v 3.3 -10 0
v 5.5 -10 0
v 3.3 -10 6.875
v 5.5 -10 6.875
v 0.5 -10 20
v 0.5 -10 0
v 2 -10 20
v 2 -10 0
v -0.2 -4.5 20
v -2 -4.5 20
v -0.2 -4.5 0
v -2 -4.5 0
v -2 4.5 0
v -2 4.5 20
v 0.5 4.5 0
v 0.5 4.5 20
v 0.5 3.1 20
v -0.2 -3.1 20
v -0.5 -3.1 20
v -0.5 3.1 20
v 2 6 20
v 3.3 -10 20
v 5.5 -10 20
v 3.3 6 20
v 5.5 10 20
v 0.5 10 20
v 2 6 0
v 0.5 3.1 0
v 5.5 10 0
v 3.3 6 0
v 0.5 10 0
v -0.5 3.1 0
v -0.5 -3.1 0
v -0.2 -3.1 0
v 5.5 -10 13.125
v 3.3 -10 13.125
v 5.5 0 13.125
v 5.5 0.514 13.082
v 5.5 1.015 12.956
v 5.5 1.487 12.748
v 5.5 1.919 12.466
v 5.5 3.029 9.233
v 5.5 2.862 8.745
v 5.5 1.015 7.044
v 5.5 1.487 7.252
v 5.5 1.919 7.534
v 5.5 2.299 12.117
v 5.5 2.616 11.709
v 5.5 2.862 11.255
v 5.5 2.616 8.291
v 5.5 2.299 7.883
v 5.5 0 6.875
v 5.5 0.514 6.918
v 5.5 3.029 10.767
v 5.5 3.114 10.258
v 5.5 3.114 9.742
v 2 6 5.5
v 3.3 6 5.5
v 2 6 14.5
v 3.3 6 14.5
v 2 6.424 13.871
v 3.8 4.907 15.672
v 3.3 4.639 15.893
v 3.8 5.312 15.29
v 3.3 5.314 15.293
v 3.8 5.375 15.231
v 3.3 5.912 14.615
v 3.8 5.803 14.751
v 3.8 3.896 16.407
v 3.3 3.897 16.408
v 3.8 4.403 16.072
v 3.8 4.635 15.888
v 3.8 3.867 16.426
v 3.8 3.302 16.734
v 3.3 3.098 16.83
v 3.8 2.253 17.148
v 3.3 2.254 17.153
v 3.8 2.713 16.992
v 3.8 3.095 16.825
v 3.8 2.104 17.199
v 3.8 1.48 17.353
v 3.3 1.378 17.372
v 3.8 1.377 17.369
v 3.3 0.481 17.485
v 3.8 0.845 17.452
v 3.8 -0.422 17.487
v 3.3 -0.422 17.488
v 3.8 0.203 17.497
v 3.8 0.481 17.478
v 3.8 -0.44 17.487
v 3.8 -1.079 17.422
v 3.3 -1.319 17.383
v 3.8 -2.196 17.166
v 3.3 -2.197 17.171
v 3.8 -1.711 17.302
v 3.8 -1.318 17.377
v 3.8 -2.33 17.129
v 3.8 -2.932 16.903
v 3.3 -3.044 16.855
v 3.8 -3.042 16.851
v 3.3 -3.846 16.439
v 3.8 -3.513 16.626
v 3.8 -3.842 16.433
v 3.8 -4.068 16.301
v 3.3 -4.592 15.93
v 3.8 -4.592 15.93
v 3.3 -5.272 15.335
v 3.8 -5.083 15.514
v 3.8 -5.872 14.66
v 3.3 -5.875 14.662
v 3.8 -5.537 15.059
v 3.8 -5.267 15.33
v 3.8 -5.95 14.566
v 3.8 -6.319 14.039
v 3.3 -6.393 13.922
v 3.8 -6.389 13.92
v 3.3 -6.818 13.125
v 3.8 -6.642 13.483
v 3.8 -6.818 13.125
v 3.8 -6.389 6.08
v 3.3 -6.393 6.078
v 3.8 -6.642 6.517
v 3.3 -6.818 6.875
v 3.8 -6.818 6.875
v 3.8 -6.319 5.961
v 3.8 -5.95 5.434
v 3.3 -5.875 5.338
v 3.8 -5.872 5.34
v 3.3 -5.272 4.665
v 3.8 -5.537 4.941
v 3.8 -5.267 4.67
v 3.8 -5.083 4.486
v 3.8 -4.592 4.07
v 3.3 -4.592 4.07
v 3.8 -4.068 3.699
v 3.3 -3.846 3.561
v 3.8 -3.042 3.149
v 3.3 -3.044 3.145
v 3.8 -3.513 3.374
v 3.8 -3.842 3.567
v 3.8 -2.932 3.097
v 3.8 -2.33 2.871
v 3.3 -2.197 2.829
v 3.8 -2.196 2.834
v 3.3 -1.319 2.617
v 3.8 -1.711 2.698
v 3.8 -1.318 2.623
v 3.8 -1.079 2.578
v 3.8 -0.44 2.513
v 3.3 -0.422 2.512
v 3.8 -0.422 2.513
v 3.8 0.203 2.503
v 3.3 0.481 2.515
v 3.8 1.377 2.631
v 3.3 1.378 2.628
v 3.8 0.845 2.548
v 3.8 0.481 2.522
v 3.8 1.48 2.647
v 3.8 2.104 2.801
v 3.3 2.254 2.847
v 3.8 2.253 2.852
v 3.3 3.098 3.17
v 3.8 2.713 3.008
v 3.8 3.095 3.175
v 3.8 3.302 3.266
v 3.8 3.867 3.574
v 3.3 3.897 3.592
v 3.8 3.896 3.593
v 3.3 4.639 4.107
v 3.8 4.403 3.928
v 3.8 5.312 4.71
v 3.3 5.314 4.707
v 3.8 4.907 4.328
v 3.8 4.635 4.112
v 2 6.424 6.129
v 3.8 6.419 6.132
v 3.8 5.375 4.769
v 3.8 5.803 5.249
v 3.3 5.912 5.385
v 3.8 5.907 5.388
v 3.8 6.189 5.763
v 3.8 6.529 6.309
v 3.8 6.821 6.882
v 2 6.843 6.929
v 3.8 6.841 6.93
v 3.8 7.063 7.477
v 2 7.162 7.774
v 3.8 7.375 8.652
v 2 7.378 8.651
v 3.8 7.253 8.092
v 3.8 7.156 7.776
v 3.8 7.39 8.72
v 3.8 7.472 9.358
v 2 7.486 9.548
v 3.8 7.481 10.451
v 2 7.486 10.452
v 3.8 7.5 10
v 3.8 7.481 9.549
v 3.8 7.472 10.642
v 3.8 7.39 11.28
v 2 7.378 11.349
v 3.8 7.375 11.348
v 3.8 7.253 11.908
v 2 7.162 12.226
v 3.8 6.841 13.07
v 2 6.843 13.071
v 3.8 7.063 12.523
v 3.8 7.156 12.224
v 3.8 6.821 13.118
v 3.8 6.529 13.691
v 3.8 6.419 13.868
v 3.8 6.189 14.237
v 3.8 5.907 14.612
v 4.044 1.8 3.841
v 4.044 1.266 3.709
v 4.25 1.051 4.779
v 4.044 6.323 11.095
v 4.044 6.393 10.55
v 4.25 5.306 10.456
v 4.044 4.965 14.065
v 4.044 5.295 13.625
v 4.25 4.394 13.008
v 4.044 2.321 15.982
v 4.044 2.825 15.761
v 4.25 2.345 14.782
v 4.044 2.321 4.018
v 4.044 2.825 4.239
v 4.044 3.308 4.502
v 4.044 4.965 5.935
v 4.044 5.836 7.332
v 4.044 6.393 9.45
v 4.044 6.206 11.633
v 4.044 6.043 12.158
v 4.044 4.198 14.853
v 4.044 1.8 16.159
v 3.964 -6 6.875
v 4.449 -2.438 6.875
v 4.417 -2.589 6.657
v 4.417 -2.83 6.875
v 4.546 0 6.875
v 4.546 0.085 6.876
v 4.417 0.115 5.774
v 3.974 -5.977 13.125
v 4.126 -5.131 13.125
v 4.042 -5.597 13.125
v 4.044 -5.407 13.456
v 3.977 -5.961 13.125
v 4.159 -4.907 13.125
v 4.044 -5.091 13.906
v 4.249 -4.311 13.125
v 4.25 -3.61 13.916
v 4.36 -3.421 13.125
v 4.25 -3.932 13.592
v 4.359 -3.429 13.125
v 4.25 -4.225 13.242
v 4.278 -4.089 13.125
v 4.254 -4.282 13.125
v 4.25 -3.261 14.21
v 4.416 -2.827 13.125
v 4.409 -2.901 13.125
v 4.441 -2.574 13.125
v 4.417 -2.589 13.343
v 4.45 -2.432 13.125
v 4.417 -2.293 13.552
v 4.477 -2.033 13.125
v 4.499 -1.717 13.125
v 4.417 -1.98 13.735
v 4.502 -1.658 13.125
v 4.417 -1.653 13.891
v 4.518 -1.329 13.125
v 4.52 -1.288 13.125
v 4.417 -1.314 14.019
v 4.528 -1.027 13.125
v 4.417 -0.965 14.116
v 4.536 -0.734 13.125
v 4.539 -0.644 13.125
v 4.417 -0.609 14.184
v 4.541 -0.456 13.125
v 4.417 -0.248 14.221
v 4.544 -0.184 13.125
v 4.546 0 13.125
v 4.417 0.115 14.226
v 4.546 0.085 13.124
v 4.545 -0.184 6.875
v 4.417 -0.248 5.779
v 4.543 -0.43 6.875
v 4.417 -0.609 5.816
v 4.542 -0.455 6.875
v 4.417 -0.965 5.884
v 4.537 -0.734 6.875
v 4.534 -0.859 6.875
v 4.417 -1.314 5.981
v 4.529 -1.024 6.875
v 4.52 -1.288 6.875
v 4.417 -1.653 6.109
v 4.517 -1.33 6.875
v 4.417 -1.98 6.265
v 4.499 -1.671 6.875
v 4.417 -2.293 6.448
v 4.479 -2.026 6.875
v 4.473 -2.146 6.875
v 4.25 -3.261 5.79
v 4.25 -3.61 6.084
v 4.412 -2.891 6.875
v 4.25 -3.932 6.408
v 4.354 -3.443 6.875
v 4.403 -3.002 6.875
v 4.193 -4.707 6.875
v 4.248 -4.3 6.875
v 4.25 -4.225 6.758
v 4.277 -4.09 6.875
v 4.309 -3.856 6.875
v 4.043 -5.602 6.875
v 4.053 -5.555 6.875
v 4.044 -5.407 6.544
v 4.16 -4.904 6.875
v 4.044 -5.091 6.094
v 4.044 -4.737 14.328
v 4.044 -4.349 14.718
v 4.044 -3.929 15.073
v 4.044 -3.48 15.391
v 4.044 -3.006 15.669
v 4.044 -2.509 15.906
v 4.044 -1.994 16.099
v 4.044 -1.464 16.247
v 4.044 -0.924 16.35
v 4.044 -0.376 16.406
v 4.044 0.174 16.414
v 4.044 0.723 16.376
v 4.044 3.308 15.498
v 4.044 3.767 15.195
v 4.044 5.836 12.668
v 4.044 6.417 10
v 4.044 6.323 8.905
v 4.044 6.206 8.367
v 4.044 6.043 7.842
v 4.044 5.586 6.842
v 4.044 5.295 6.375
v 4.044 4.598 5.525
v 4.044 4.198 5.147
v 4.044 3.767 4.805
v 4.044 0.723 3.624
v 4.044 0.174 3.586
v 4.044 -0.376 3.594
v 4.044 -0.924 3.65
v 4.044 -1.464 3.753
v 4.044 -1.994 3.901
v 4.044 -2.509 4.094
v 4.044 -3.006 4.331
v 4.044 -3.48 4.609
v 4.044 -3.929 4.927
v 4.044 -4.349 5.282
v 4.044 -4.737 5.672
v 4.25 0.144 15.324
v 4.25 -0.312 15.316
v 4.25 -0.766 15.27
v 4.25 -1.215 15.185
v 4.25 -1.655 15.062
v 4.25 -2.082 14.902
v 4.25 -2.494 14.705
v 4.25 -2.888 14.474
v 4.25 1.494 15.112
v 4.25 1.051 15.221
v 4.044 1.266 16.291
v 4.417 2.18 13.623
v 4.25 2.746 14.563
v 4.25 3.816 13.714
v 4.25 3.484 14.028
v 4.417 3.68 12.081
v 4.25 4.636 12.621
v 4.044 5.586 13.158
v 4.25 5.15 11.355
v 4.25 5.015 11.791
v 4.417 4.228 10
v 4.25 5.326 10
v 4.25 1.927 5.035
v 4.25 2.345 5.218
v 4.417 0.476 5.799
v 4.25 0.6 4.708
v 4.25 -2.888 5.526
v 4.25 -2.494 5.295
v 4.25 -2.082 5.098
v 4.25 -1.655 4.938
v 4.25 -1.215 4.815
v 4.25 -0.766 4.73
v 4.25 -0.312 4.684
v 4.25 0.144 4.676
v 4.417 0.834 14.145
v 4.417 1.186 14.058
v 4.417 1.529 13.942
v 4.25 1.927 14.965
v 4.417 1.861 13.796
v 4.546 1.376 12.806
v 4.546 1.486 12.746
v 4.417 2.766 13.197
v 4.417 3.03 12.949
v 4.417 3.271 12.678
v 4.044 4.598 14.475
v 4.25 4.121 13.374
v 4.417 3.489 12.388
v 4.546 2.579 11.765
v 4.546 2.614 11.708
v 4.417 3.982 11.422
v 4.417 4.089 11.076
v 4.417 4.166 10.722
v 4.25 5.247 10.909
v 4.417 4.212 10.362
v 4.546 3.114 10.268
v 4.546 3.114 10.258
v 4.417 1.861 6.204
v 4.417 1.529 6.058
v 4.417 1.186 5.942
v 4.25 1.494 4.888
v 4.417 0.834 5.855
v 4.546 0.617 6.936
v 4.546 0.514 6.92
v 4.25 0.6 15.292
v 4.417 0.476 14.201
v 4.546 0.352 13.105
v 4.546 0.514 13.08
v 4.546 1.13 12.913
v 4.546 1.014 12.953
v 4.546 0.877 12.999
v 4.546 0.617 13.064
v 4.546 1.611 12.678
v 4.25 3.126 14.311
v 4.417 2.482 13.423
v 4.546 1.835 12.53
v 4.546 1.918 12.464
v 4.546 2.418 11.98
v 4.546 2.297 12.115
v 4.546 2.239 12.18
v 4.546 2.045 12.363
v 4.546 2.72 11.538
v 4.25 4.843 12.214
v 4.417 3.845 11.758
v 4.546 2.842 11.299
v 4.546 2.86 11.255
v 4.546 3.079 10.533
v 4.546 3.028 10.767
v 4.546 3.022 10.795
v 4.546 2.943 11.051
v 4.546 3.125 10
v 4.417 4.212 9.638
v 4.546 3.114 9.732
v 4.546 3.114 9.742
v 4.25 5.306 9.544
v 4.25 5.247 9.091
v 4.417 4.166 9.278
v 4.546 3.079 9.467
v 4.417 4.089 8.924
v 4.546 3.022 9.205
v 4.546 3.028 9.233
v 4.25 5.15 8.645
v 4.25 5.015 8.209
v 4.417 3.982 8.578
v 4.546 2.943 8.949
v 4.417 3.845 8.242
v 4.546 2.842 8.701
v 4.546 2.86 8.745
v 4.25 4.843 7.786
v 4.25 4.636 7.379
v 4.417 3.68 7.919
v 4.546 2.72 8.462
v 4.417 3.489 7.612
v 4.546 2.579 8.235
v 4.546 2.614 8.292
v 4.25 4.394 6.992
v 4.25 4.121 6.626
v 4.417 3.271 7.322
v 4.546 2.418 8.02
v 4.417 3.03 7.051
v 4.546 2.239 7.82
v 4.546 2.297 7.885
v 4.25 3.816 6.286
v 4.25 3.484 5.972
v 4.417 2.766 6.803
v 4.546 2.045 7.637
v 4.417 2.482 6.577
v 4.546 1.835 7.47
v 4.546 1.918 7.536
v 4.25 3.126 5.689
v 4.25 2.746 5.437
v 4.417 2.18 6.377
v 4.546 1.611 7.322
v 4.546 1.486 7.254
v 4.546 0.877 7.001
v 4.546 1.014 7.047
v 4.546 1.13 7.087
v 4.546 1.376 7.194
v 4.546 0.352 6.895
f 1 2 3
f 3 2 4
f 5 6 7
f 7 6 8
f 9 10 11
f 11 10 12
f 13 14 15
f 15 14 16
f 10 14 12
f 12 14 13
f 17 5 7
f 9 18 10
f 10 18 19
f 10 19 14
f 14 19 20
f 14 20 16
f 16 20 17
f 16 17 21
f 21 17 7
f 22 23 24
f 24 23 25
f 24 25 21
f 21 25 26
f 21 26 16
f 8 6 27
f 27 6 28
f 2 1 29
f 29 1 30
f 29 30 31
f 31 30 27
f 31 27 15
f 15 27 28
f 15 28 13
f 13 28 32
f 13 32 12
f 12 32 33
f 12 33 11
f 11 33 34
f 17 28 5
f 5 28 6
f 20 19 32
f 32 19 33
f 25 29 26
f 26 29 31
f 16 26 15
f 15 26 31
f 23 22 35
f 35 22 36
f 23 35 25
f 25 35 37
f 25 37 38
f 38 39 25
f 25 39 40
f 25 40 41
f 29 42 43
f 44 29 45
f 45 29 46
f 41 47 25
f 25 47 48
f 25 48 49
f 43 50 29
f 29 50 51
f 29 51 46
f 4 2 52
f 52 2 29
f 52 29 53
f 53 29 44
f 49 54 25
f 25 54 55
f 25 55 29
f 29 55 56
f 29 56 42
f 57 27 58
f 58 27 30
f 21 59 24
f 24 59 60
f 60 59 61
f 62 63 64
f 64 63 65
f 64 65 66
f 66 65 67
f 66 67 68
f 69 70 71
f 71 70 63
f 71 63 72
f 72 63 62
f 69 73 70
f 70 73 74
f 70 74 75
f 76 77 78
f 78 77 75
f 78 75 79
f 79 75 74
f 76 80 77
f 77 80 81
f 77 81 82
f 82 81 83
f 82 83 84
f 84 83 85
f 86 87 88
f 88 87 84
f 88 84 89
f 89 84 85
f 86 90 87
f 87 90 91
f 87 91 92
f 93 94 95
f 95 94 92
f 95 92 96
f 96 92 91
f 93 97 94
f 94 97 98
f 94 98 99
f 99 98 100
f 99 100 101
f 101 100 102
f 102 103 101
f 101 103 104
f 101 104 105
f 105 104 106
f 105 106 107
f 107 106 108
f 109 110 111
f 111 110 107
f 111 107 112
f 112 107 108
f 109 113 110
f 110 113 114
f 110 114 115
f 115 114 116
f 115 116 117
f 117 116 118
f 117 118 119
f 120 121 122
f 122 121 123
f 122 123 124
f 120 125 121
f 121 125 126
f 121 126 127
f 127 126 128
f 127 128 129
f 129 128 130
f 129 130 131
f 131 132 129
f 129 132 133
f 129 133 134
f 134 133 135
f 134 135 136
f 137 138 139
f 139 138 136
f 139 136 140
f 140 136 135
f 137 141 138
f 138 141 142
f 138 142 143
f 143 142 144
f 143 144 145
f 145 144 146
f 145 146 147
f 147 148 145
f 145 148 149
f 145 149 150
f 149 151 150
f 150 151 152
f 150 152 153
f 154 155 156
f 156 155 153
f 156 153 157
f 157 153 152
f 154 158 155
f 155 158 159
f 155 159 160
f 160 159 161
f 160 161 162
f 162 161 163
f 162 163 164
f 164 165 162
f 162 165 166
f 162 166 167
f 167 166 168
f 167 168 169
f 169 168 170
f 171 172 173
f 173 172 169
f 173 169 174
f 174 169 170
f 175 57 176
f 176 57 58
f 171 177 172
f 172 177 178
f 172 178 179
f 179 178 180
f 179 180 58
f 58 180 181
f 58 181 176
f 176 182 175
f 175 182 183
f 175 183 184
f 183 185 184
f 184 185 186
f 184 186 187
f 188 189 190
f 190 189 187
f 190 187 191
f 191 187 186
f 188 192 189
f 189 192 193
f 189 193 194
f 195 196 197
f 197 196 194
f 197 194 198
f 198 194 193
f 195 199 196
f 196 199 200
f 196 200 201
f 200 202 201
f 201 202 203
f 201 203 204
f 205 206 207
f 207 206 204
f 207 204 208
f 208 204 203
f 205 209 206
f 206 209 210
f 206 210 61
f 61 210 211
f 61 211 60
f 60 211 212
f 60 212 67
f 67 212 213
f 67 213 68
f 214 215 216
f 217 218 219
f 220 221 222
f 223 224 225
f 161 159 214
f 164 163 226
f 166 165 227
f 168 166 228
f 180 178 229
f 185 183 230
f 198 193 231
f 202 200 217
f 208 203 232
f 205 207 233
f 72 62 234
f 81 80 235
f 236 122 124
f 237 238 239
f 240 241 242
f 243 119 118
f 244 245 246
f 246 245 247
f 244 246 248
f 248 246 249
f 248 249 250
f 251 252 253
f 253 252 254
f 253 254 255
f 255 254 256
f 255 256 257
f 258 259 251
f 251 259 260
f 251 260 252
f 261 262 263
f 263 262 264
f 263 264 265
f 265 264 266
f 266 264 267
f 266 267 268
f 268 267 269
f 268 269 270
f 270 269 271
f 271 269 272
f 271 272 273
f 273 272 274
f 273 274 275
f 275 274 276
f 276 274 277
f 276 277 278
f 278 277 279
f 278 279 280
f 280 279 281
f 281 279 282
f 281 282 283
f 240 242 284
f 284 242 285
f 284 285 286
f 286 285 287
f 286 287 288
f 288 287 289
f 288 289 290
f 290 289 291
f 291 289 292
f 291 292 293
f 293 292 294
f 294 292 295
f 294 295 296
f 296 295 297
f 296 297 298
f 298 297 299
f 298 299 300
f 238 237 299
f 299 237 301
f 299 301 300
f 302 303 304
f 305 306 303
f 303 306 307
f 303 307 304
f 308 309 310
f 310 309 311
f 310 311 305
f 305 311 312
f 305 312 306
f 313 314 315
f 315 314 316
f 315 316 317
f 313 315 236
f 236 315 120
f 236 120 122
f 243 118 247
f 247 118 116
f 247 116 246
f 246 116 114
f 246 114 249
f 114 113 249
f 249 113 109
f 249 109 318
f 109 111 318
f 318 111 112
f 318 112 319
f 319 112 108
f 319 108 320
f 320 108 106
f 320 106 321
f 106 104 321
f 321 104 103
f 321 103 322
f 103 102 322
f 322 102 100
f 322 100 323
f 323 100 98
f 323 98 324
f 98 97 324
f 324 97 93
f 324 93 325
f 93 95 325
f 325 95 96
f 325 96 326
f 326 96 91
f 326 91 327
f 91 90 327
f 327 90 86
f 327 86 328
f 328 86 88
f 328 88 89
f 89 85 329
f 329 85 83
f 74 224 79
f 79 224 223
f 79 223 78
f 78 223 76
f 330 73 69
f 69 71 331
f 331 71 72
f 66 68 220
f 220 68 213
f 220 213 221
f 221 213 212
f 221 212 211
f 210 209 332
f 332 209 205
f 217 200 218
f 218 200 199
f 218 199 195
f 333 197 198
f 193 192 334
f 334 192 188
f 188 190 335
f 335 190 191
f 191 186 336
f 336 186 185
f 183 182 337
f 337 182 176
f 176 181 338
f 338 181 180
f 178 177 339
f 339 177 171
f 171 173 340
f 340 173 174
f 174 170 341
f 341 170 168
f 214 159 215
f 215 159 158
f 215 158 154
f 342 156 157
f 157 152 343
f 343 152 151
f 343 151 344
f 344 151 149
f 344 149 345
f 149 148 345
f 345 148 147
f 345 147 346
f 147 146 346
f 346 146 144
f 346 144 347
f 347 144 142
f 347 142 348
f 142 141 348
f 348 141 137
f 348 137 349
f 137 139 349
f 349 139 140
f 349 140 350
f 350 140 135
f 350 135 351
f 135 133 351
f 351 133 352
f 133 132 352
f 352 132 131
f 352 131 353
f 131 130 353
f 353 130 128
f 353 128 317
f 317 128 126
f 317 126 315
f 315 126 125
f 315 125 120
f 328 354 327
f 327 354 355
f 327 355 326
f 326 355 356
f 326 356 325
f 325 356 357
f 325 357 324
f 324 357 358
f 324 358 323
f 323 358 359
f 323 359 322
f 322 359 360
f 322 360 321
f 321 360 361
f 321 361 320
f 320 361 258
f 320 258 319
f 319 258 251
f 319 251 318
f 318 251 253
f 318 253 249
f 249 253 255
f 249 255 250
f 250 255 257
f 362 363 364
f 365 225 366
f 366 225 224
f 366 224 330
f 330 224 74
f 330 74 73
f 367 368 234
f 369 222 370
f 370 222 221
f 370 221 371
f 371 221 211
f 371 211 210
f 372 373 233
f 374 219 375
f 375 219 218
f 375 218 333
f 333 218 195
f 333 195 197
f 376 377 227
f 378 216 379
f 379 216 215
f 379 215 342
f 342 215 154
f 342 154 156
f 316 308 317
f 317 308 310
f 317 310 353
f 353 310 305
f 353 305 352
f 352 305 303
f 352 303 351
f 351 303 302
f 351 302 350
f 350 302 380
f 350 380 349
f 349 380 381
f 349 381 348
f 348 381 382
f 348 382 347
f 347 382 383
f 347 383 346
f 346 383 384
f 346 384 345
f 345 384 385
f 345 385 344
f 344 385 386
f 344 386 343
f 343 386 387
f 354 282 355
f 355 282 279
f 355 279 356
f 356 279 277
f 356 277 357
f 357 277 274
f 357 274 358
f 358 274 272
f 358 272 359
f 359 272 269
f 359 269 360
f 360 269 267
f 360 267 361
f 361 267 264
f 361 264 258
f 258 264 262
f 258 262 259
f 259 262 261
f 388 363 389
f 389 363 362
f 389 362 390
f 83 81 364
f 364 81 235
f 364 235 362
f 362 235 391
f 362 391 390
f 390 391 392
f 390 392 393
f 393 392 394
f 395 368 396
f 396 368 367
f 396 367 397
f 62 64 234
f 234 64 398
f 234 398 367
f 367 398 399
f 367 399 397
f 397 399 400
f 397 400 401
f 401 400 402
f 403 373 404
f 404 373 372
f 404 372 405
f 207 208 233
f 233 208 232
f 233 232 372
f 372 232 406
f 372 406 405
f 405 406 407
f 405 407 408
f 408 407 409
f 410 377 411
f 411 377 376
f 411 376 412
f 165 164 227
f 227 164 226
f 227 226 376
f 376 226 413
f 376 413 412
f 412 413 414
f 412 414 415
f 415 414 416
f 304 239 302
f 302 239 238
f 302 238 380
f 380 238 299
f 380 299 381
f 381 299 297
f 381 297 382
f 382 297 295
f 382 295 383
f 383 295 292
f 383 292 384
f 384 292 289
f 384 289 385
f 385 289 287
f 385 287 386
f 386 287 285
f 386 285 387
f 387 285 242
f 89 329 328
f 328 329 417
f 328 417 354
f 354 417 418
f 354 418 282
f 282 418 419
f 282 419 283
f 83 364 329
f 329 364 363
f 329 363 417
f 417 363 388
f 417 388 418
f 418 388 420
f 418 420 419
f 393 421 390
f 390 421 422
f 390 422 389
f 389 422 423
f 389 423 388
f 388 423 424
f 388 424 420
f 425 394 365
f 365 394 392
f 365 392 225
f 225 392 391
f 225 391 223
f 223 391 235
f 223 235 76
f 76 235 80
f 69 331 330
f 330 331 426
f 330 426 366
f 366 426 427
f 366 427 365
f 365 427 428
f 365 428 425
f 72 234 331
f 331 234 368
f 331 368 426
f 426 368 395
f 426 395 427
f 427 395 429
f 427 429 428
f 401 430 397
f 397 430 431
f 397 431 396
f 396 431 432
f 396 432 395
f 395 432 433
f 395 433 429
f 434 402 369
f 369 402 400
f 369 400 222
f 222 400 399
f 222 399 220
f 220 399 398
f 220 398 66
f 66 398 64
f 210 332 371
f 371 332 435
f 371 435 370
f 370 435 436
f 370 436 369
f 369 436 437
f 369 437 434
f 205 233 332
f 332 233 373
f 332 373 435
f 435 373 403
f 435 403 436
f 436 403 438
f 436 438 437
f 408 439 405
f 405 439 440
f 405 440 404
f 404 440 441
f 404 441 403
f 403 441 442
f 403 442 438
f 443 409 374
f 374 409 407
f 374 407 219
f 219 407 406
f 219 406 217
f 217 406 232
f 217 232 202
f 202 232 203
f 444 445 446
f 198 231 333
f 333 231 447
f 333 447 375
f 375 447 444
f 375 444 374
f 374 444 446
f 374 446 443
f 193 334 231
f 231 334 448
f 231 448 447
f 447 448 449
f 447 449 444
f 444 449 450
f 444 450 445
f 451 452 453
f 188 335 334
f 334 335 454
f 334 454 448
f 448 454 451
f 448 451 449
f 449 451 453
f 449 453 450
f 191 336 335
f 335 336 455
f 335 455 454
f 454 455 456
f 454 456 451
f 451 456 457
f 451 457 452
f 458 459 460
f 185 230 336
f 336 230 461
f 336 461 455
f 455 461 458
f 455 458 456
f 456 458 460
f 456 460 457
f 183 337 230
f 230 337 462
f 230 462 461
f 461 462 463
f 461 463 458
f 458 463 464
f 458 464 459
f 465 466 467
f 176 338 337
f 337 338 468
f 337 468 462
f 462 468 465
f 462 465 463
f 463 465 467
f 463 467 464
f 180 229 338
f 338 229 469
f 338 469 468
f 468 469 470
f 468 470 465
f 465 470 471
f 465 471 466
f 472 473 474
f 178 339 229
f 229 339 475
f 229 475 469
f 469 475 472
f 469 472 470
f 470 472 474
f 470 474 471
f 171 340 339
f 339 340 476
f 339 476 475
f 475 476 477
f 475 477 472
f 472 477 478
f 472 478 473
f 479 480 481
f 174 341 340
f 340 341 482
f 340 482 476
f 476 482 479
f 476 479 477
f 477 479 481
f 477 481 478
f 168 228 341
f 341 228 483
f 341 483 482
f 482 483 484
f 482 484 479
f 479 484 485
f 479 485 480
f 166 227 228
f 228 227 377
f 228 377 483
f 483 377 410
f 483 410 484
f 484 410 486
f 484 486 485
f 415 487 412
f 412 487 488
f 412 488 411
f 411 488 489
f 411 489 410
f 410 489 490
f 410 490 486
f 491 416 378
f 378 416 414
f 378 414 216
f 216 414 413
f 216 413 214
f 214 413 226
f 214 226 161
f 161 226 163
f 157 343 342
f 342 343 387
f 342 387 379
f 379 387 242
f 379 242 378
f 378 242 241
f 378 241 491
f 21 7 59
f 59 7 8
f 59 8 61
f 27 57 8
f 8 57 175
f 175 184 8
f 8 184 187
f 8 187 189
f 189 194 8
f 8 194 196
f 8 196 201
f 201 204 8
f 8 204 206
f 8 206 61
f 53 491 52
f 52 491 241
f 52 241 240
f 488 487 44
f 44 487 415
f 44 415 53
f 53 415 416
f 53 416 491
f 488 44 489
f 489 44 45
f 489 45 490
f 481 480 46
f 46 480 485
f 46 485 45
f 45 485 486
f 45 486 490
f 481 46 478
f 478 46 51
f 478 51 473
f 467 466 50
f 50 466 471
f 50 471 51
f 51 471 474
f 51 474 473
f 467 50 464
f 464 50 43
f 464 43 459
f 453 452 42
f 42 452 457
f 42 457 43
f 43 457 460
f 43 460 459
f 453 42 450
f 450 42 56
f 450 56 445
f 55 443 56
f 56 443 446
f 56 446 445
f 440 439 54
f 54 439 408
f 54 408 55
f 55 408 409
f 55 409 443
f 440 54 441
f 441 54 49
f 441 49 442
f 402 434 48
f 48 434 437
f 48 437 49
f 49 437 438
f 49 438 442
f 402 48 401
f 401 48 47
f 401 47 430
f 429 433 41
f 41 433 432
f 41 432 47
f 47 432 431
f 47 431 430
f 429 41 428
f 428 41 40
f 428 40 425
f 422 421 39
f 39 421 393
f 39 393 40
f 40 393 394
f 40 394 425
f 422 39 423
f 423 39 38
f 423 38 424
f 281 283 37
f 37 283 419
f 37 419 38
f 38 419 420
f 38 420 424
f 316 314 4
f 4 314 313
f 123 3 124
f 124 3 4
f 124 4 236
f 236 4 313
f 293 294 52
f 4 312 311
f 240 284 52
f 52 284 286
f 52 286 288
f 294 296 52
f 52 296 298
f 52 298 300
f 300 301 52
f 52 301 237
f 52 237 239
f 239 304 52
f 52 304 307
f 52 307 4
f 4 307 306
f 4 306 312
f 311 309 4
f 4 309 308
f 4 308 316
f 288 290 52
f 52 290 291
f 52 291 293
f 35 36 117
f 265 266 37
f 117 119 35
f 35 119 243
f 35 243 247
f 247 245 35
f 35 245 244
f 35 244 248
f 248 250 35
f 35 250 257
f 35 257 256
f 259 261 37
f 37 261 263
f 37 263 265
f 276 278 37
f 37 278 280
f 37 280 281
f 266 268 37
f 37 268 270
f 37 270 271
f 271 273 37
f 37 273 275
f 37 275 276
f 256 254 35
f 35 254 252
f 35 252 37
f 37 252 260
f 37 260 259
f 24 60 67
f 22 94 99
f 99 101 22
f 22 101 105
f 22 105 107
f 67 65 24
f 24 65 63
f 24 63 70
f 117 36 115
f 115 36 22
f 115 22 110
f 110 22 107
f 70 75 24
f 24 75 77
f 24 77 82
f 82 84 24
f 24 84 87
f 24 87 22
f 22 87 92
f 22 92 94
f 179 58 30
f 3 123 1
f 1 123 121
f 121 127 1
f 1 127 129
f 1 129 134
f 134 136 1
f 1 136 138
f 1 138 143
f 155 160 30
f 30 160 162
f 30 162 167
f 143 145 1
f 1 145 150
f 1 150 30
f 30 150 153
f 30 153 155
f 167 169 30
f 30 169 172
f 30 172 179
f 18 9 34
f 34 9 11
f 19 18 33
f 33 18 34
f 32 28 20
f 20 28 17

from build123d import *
from build123d.topology import SkipClean

# Parameters (mm, degrees)
SKETCH1_W           = 4
SKETCH1_H           = 9
BOSS_EXTRUDE1_DEPTH = 20
SKETCH2_W           = 1
SKETCH2_H           = 6
CUT_EXTRUDE1_DEPTH  = 21.597329924
SKETCH4_W           = 20
SKETCH4_H           = 20
BOSS_EXTRUDE2_DEPTH = 1.5
SKETCH5_W           = 20
SKETCH5_H           = 20
BOSS_EXTRUDE3_DEPTH = 3.5
SKETCH7_W           = 1.8
SKETCH7_H           = 20
CUT_EXTRUDE5_DEPTH  = 16
CUT_EXTRUDE6_START  = -1.7
CUT_EXTRUDE6_DEPTH  = 1.7
BOSS_EXTRUDE4_START = 0.5
BOSS_EXTRUDE4_DEPTH = 0.5
SKETCH10_W          = 0.7
SKETCH10_H          = 1.5
CUT_EXTRUDE7_DEPTH  = 24.027157903
SKETCH11_W          = 1
SKETCH11_H          = 6.2
CUT_EXTRUDE8_DEPTH  = 24.027157903


with BuildPart() as part:
    # Sketch1 → Boss-Extrude1 (new body)
    with BuildSketch(Plane.XY):
        Rectangle(SKETCH1_W, SKETCH1_H)
    extrude(amount=BOSS_EXTRUDE1_DEPTH)

    # Sketch2 → Cut-Extrude1 (cut, through all)
    with BuildSketch(Plane(origin=(0, 0, 0), x_dir=(-1, 0, 0), z_dir=(0, 0, -1))):
        Rectangle(SKETCH2_W, SKETCH2_H)
    extrude(amount=-CUT_EXTRUDE1_DEPTH, mode=Mode.SUBTRACT)

    # Sketch4 → Boss-Extrude2 (add)
    with BuildSketch(Plane(origin=(2, 0, 0), x_dir=(0, 0, -1), z_dir=(1, 0, 0))):
        with Locations((-10, 0)):
            Rectangle(SKETCH4_W, SKETCH4_H)
    extrude(amount=-BOSS_EXTRUDE2_DEPTH)

    # Sketch5 → Boss-Extrude3 (add)
    with BuildSketch(Plane(origin=(2, 0, 0), x_dir=(0, 0, -1), z_dir=(1, 0, 0))):
        with Locations((-10, 0)):
            Rectangle(SKETCH5_W, SKETCH5_H)
    extrude(amount=BOSS_EXTRUDE3_DEPTH)

    # Sketch6 → Cut-Revolve2 (revolve, cut)
    with BuildSketch(Plane(origin=(0, 0, 10), x_dir=(-1, 0, 0), z_dir=(0, 0, -1)), mode=Mode.PRIVATE) as cut_revolve2_sk:
        with BuildLine():
            Line((-2, 7.5), (-2, 0))
            Line((-2, 0), (-4.700284, 0))
            ThreePointArc((-4.700284, 0), (-4.474408022, 3.776920415), (-3.8, 7.5))
            Line((-3.8, 7.5), (-2, 7.5))
        make_face()
    revolve(cut_revolve2_sk.sketch.rotate(Axis((88.99, 0, 10), (-1, 0, 0)), 90), axis=Axis((88.99, 0, 10), (-1, 0, 0)), mode=Mode.SUBTRACT)

    # Sketch7 → Cut-Extrude5 (cut)
    with BuildSketch(Plane.XZ.offset(10)):
        with Locations((2.9, 10)):
            Rectangle(SKETCH7_W, SKETCH7_H)
    extrude(amount=-CUT_EXTRUDE5_DEPTH, mode=Mode.SUBTRACT)

    # Sketch8 → Cut-Extrude6 (cut)
    with BuildSketch(Plane(origin=(5.5, 0, 0), x_dir=(0, 0, -1), z_dir=(1, 0, 0)).offset(CUT_EXTRUDE6_START)):
        with BuildLine():
            Line((-6.875, 0), (-6.875, -10))
            ThreePointArc((-6.875, -10), (-10, -13.125), (-13.125, -10))
            Line((-13.125, -10), (-13.125, 0))
            ThreePointArc((-13.125, 0), (-10, 3.125), (-6.875, 0))
        make_face()
    extrude(amount=CUT_EXTRUDE6_DEPTH, mode=Mode.SUBTRACT)

    # Sketch9 → Boss-Extrude4 (add)
    with SkipClean():  # the faces are left unmerged after this step: merging them gives an invalid solid
        with BuildSketch(Plane.ZY.offset(-3.8).offset(BOSS_EXTRUDE4_START)):
            with BuildLine():
                Line((13.125, -6.817945072), (13.125, -10))
                Line((13.125, -10), (20, -10))
                Line((20, -10), (20, 6))
                Line((20, 6), (14.5, 6))
                ThreePointArc((14.5, 6), (17.457216989, -0.799946739), (13.125, -6.817945072))
            make_face()
            with BuildLine():
                Line((0, -10), (6.875, -10))
                Line((6.875, -10), (6.875, -6.817945072))
                ThreePointArc((6.875, -6.817945072), (2.542783011, -0.799946739), (5.5, 6))
                Line((5.5, 6), (0, 6))
                Line((0, 6), (0, -10))
            make_face()
        extrude(amount=-BOSS_EXTRUDE4_DEPTH)

    # Sketch10 → Cut-Extrude7 (cut, through all)
    with SkipClean():  # the faces are left unmerged after this step: merging them gives an invalid solid
        with BuildSketch(Plane.XY.offset(20)):
            with Locations((0.15, -3.75)):
                Rectangle(SKETCH10_W, SKETCH10_H)
        extrude(amount=-CUT_EXTRUDE7_DEPTH, mode=Mode.SUBTRACT)

    # Sketch11 → Cut-Extrude8 (cut, through all)
    with SkipClean():  # the faces are left unmerged after this step: merging them gives an invalid solid
        with BuildSketch(Plane.XY.offset(20)):
            Rectangle(SKETCH11_W, SKETCH11_H)
        extrude(amount=-CUT_EXTRUDE8_DEPTH, mode=Mode.SUBTRACT)


solid = part.part
